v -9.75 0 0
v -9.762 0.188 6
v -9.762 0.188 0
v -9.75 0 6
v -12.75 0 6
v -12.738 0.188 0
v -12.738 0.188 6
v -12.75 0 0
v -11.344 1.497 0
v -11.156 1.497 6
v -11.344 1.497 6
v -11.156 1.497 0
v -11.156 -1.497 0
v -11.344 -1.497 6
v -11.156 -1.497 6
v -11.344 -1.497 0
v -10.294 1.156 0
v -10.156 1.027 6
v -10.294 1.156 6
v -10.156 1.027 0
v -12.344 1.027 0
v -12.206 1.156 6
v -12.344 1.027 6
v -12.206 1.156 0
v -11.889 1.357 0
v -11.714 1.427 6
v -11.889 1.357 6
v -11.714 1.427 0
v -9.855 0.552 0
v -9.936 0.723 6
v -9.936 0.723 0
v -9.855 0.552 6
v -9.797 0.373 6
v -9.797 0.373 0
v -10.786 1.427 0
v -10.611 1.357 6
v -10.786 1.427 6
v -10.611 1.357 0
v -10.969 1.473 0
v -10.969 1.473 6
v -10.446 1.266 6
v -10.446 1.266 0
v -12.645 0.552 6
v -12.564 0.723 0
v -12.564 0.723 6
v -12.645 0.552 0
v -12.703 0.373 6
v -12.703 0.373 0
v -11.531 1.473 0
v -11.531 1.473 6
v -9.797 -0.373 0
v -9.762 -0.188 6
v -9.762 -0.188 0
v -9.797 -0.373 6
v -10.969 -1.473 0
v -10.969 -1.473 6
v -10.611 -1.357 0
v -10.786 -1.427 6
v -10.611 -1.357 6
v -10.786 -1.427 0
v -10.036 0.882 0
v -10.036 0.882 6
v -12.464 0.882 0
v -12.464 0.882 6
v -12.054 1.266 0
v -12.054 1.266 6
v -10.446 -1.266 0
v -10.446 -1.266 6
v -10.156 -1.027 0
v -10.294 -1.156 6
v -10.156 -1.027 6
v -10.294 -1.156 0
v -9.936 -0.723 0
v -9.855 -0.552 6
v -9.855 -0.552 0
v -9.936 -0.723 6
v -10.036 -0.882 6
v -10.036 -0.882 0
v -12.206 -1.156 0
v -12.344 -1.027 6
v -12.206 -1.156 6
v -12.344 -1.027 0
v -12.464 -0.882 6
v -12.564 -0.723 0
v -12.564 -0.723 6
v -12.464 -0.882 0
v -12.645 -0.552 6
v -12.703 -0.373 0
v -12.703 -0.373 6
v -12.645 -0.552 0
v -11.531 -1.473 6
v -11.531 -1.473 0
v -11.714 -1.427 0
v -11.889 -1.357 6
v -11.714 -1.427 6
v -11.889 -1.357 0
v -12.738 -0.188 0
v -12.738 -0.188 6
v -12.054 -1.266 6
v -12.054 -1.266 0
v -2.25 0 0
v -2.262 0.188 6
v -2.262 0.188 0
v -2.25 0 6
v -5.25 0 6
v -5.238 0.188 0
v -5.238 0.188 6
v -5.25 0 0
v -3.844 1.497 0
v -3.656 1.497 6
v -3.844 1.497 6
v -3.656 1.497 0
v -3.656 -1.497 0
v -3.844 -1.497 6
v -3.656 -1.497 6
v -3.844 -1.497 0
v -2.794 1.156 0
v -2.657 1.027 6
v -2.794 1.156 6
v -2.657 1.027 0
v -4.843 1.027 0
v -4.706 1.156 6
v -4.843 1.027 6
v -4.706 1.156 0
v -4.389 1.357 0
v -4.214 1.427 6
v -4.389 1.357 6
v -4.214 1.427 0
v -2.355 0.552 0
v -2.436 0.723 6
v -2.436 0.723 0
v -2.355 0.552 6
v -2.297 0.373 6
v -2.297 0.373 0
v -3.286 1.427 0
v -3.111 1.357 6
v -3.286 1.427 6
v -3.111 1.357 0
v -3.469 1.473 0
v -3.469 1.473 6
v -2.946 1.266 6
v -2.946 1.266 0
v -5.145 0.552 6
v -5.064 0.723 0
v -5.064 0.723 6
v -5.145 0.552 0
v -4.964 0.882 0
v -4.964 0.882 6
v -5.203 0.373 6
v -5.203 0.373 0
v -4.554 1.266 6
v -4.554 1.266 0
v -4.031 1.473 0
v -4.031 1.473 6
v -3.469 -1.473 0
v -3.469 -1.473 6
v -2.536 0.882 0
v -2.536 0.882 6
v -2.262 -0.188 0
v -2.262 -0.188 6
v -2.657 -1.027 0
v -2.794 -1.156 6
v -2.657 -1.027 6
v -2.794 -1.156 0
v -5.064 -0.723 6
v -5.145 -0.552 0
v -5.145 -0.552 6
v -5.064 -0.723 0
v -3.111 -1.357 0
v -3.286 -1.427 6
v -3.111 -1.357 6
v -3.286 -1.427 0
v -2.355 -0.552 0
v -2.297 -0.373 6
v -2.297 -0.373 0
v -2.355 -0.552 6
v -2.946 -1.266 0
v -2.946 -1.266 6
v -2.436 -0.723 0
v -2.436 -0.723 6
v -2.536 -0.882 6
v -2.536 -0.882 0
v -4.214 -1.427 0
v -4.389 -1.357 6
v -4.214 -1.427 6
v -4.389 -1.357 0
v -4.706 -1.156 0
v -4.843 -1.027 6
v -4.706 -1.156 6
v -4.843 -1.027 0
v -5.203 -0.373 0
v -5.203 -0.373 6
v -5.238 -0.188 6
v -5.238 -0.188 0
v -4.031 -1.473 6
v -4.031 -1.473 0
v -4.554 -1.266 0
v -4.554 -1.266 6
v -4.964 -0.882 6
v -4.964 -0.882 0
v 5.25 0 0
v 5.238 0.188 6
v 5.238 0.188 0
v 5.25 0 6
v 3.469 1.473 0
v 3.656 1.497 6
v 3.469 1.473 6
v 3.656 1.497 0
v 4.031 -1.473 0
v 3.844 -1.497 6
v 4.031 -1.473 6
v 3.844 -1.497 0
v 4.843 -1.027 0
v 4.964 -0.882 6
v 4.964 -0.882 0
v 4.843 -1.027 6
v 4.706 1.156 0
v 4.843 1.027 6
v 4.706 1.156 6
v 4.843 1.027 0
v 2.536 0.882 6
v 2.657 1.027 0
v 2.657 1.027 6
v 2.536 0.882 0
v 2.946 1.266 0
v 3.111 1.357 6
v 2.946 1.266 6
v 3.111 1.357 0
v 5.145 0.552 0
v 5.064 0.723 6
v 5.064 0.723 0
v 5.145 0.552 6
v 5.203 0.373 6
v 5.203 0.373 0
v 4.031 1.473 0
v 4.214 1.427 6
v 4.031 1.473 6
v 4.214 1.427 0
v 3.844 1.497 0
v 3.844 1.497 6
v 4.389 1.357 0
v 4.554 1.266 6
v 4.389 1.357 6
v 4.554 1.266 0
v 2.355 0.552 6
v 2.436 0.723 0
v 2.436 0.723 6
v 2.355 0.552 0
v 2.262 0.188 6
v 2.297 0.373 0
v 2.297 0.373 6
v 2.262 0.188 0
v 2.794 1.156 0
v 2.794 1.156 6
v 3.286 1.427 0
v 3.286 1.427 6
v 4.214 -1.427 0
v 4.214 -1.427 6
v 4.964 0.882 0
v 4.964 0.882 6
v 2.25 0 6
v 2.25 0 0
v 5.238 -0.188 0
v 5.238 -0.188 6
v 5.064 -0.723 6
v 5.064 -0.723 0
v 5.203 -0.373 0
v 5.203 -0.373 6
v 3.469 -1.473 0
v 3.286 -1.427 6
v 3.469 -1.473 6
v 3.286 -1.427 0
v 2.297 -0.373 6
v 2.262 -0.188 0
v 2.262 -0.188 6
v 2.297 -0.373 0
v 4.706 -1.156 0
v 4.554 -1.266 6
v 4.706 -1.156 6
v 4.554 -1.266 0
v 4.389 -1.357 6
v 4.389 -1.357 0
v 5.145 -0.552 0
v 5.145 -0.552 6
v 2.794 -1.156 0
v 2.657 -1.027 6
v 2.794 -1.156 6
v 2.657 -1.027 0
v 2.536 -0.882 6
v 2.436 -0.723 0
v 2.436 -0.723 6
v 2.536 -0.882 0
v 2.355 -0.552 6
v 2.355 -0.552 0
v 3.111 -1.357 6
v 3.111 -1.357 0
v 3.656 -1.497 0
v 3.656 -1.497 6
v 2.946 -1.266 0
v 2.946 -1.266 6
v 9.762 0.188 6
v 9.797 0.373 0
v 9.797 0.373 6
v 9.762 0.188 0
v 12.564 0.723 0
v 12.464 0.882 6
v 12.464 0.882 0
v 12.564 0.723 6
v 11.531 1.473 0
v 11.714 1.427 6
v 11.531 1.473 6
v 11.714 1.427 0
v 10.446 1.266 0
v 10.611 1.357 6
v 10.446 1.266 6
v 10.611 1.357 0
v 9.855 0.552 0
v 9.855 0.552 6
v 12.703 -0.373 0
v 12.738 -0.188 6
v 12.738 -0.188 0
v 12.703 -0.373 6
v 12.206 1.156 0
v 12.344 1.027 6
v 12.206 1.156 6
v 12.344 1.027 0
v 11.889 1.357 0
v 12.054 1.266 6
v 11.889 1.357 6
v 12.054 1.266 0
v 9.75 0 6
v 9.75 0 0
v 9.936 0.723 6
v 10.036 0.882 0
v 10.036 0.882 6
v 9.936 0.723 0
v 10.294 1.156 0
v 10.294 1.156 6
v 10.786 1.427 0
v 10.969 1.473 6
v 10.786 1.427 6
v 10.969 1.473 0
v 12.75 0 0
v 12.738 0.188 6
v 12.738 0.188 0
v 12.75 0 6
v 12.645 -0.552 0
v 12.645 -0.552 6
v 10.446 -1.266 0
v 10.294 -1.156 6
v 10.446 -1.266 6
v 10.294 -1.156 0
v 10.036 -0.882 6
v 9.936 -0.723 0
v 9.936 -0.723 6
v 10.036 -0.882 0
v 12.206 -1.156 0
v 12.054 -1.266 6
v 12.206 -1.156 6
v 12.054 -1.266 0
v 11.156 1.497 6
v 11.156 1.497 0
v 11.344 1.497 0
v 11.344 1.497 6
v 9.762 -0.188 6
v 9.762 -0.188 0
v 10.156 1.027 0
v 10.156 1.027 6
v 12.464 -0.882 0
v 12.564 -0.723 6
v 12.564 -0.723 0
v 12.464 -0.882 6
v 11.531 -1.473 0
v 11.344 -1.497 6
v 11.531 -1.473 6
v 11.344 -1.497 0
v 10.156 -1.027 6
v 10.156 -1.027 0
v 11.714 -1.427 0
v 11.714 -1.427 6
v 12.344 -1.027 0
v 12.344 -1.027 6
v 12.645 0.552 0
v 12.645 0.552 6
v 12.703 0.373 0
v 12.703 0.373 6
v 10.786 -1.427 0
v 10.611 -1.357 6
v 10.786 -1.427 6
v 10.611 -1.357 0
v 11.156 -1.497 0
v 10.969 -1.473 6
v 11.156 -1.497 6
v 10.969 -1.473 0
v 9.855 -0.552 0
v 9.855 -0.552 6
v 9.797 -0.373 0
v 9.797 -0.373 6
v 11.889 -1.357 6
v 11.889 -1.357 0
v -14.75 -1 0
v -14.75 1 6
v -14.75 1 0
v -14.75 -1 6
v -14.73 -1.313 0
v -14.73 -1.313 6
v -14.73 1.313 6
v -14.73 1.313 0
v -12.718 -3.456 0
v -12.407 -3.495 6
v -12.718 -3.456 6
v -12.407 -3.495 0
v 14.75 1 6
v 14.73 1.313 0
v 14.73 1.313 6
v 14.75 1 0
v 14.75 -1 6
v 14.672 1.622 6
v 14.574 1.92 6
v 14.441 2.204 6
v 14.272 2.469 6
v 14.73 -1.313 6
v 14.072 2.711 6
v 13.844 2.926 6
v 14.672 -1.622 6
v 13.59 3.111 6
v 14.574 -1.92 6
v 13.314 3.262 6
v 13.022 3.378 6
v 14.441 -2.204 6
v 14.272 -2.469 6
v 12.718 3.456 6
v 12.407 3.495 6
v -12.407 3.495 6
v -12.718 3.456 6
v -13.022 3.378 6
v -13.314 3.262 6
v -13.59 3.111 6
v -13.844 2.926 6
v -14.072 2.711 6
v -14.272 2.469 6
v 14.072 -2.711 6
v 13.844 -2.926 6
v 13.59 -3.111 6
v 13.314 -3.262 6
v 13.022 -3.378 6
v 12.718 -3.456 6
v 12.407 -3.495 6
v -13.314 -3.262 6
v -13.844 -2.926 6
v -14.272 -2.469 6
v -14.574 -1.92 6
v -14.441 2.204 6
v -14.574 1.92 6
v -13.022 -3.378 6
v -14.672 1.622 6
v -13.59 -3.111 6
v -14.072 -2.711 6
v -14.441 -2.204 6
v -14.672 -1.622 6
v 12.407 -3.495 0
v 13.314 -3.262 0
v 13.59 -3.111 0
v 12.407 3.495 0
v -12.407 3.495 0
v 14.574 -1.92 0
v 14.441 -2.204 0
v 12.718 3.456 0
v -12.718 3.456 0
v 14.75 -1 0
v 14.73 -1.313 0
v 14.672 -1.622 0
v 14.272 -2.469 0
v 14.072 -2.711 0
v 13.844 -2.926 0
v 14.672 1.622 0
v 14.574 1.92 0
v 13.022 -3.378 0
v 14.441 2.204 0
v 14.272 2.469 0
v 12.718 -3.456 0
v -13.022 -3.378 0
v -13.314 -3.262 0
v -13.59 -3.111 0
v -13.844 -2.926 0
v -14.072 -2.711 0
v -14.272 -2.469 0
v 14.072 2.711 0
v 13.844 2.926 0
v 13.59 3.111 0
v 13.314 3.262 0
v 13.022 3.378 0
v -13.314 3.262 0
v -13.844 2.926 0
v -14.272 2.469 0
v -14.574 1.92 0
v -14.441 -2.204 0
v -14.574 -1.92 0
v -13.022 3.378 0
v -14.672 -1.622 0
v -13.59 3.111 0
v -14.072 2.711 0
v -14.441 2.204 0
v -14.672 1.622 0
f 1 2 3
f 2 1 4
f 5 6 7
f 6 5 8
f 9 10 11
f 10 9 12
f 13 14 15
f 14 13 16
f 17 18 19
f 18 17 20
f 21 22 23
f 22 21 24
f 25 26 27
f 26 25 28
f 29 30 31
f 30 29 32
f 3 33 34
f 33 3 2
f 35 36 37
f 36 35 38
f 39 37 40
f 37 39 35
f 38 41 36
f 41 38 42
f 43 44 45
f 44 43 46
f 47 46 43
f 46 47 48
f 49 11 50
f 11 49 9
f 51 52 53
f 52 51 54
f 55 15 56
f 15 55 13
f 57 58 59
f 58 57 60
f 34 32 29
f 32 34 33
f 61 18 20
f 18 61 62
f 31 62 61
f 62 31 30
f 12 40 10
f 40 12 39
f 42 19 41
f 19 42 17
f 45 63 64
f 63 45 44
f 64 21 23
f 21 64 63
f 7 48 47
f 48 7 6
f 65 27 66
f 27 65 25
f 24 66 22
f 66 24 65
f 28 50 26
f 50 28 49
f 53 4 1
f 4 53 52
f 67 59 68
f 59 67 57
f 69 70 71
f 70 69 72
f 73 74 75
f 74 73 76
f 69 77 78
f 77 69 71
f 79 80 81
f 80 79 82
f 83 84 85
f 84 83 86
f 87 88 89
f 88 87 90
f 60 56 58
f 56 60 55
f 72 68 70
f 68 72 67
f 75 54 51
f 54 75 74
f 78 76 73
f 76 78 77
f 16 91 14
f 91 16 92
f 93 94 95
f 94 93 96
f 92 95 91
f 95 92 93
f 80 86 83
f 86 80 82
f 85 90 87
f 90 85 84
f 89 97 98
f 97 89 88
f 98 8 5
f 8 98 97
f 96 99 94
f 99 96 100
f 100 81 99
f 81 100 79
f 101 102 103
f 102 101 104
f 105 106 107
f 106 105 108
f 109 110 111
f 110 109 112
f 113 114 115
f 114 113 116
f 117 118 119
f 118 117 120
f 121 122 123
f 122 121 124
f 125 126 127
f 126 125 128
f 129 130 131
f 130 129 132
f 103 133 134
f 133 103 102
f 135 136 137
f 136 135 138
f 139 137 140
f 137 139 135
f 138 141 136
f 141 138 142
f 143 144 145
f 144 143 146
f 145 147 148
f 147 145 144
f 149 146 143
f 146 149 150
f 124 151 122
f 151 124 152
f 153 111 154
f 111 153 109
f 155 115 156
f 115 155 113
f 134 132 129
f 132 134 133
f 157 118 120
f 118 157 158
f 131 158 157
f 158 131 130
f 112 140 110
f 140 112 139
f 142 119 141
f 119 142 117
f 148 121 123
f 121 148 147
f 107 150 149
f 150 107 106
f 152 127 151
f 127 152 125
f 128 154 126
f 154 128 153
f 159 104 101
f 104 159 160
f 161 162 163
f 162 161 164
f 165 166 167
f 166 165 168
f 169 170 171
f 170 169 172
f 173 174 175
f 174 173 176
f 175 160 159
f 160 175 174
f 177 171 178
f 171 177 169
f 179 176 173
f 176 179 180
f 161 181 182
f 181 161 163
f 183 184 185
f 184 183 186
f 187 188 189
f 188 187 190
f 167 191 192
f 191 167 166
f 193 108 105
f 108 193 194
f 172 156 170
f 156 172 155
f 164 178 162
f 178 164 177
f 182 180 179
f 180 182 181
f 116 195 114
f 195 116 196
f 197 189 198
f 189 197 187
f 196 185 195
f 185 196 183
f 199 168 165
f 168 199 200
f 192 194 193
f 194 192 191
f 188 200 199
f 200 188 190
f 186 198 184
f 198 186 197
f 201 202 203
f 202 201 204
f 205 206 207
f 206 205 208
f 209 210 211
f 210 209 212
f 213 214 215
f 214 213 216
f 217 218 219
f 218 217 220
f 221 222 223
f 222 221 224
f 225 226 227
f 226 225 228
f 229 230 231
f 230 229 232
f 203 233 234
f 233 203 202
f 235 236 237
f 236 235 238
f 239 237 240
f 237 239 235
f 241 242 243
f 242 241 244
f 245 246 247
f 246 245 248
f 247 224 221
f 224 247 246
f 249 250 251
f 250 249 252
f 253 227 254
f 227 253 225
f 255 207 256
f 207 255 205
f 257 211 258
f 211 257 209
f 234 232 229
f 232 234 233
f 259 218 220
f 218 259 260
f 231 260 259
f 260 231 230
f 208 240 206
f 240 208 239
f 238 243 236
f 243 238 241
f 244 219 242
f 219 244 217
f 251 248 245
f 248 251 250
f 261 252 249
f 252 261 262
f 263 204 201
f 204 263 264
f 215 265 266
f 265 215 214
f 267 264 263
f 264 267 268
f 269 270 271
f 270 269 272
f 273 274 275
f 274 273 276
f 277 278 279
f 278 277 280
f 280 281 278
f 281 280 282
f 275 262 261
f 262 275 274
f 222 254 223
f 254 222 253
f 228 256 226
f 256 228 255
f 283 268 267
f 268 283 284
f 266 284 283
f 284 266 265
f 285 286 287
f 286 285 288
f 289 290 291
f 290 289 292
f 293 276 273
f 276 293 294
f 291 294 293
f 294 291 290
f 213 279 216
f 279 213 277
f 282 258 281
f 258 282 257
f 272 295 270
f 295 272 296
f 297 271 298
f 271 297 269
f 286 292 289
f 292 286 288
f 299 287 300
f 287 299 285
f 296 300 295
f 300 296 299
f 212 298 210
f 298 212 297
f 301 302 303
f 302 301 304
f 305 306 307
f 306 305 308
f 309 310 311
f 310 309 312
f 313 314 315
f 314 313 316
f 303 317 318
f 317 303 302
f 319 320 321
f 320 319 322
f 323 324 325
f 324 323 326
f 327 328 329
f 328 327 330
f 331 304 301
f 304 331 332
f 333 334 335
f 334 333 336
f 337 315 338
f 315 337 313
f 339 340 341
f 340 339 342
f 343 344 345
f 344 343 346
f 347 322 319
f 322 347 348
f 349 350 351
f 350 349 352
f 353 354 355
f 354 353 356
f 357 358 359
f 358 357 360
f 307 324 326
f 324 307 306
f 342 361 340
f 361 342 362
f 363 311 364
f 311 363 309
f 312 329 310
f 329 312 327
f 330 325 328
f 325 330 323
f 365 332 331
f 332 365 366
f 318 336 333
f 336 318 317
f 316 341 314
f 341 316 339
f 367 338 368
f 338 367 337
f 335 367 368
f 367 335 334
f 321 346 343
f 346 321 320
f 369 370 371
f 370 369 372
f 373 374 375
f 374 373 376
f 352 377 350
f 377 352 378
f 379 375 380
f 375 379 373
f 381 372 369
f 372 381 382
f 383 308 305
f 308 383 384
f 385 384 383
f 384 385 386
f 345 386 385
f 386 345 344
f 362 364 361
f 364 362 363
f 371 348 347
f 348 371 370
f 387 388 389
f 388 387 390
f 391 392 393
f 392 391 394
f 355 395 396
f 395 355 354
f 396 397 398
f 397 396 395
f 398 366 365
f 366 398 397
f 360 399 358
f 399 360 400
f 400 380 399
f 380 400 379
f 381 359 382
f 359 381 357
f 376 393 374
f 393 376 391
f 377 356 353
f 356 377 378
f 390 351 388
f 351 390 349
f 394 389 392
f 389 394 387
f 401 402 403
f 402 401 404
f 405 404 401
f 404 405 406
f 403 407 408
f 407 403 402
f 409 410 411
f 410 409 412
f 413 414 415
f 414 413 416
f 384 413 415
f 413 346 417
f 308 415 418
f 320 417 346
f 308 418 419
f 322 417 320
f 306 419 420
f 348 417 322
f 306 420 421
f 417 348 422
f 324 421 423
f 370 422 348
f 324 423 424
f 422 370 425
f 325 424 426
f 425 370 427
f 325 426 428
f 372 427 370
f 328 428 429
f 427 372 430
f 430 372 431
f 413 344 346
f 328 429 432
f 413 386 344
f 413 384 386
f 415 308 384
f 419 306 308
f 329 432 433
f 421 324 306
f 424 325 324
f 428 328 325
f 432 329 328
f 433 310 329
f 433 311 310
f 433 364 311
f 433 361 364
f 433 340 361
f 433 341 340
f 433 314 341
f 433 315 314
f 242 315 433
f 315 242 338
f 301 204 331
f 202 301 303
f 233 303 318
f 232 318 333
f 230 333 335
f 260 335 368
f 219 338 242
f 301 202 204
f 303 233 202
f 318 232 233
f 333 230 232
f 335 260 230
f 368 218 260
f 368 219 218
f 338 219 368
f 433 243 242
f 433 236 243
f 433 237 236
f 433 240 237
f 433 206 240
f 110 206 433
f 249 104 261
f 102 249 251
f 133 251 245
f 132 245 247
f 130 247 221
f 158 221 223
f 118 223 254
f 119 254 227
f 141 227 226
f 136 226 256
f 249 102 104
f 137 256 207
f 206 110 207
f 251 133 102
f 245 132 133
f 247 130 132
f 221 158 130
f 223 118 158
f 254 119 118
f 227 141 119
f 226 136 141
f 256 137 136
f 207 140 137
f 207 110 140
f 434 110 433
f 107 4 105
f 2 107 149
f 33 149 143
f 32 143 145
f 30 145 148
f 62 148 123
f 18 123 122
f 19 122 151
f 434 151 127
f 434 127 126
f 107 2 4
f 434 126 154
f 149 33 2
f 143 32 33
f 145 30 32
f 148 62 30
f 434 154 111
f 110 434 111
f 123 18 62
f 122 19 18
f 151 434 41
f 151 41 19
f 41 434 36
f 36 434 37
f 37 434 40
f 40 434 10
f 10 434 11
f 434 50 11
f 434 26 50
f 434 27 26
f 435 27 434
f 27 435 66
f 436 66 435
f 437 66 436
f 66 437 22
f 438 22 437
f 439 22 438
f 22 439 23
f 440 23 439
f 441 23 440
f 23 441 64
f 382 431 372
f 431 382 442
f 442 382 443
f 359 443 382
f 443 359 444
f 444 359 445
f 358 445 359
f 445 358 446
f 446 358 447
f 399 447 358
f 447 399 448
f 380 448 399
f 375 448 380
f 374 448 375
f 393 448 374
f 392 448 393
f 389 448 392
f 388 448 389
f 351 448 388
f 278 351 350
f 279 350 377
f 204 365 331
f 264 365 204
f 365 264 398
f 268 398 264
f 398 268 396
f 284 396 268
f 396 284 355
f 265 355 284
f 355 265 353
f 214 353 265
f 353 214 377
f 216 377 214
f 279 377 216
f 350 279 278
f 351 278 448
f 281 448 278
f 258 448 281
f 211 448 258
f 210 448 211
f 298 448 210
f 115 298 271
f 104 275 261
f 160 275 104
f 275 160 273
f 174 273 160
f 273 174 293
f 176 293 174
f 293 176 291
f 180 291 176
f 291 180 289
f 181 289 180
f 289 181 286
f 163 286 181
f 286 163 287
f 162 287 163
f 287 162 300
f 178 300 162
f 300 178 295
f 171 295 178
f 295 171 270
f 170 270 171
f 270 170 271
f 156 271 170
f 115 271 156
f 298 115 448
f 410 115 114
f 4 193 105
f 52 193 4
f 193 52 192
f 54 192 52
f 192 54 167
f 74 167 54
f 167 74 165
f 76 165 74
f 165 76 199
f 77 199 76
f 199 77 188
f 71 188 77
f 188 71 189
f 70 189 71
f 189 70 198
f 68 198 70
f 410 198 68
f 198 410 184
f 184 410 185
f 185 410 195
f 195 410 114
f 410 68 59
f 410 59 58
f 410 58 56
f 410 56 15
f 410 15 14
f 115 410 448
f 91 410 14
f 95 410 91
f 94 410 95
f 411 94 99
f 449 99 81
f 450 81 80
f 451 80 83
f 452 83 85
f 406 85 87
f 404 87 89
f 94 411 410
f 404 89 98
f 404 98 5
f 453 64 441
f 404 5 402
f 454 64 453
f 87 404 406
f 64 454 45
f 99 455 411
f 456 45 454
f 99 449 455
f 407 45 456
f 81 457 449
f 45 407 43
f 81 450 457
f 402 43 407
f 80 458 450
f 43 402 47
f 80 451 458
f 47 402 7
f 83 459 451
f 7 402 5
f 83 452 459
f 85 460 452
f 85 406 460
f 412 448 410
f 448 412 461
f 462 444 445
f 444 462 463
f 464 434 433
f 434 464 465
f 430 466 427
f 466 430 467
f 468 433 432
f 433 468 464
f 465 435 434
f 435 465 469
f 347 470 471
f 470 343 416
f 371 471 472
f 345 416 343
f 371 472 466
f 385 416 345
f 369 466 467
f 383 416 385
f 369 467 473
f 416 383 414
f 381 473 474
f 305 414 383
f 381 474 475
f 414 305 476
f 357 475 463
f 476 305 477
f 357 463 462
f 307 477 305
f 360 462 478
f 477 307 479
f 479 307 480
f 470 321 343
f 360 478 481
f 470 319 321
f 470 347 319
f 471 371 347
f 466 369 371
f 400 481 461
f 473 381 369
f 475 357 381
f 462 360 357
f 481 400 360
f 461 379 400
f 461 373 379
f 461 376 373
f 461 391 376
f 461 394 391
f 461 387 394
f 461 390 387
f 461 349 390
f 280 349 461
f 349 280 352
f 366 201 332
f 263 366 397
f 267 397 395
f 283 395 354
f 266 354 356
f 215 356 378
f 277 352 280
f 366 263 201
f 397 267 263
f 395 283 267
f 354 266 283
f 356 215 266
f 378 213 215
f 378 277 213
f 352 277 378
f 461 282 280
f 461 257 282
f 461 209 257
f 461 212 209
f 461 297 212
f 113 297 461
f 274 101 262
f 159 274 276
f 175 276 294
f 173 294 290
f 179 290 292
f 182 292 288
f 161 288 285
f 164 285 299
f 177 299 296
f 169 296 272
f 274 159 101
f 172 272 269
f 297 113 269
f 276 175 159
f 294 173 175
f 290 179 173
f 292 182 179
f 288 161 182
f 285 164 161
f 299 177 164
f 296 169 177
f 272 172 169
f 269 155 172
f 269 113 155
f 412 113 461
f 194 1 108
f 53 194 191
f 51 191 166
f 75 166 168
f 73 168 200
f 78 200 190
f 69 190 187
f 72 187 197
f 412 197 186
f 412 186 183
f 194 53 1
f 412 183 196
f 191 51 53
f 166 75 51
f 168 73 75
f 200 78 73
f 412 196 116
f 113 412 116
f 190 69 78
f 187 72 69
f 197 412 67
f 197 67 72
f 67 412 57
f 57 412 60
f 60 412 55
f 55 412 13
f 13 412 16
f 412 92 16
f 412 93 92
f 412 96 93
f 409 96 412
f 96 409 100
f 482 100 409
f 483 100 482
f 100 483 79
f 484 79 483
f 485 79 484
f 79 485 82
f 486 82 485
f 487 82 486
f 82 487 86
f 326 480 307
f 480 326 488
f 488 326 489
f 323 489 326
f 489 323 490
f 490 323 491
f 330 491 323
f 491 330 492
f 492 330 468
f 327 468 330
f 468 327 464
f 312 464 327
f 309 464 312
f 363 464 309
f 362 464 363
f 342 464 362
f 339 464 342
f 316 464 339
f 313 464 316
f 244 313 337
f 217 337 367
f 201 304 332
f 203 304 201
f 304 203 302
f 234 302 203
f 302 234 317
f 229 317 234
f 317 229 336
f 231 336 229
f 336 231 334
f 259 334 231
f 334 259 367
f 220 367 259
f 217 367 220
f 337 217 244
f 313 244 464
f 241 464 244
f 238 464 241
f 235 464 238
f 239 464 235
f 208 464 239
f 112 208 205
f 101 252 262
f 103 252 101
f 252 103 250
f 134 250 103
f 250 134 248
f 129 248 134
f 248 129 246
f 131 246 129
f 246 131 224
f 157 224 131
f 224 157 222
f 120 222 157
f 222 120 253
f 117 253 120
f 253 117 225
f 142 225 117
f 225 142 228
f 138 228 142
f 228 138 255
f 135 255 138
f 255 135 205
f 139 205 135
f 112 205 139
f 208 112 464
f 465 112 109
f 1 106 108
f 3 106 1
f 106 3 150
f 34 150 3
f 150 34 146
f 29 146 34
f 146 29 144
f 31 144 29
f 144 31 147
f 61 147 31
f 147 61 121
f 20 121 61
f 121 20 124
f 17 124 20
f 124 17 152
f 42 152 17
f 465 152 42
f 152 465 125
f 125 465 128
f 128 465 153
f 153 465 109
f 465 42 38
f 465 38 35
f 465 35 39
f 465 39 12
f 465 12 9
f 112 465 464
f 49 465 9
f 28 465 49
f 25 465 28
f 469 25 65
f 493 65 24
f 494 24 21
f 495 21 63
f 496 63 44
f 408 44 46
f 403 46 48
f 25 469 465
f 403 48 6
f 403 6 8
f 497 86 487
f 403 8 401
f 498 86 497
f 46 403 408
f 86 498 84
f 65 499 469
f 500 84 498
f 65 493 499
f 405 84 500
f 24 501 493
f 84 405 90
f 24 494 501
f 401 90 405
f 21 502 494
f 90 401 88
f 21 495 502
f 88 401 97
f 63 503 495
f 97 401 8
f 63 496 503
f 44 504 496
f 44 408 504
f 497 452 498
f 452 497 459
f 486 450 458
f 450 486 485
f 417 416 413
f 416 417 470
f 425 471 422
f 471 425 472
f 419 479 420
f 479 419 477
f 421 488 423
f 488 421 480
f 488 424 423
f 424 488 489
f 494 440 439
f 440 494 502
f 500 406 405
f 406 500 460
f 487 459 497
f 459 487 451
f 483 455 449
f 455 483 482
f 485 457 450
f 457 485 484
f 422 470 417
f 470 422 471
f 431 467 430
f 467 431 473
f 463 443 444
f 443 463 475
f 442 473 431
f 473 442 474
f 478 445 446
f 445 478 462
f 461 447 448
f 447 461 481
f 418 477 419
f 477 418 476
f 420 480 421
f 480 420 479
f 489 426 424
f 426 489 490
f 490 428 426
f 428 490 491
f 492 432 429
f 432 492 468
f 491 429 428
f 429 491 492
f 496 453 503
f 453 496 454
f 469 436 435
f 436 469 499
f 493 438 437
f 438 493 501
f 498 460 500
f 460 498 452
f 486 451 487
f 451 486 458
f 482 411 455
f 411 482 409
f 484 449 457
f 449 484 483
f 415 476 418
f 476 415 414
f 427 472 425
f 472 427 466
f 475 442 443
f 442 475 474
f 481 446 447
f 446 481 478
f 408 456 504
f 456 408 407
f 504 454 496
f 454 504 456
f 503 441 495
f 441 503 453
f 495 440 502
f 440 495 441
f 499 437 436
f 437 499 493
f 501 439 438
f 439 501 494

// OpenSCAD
$fn = 50;


difference() {
	union() {
		translate(v = [0, 0, 0]) {
			rotate(a = [0, 0, 0]) {
				hull() {
					translate(v = [-12.2500000000, 1.0000000000, 0]) {
						rotate(a = [0, 0, 0]) {
							translate(v = [0, 0, 0]) {
								rotate(a = [0, 0, 0]) {
									cylinder(h = 6, r = 2.5000000000);
								}
							}
						}
					}
					translate(v = [12.2500000000, 1.0000000000, 0]) {
						rotate(a = [0, 0, 0]) {
							translate(v = [0, 0, 0]) {
								rotate(a = [0, 0, 0]) {
									cylinder(h = 6, r = 2.5000000000);
								}
							}
						}
					}
					translate(v = [-12.2500000000, -1.0000000000, 0]) {
						rotate(a = [0, 0, 0]) {
							translate(v = [0, 0, 0]) {
								rotate(a = [0, 0, 0]) {
									cylinder(h = 6, r = 2.5000000000);
								}
							}
						}
					}
					translate(v = [12.2500000000, -1.0000000000, 0]) {
						rotate(a = [0, 0, 0]) {
							translate(v = [0, 0, 0]) {
								rotate(a = [0, 0, 0]) {
									cylinder(h = 6, r = 2.5000000000);
								}
							}
						}
					}
				}
			}
		}
	}
	union() {
		translate(v = [-11.2500000000, 0.0000000000, 0]) {
			rotate(a = [0, 0, 0]) {
				translate(v = [0, 0, -50]) {
					rotate(a = [0, 0, 0]) {
						cylinder(h = 100, r = 1.5000000000);
					}
				}
			}
		}
		translate(v = [-3.7500000000, 0.0000000000, 0]) {
			rotate(a = [0, 0, 0]) {
				translate(v = [0, 0, -50]) {
					rotate(a = [0, 0, 0]) {
						cylinder(h = 100, r = 1.5000000000);
					}
				}
			}
		}
		translate(v = [3.7500000000, 0.0000000000, 0]) {
			rotate(a = [0, 0, 0]) {
				translate(v = [0, 0, -50]) {
					rotate(a = [0, 0, 0]) {
						cylinder(h = 100, r = 1.5000000000);
					}
				}
			}
		}
		translate(v = [11.2500000000, 0.0000000000, 0]) {
			rotate(a = [0, 0, 0]) {
				translate(v = [0, 0, -50]) {
					rotate(a = [0, 0, 0]) {
						cylinder(h = 100, r = 1.5000000000);
					}
				}
			}
		}
	}
}
